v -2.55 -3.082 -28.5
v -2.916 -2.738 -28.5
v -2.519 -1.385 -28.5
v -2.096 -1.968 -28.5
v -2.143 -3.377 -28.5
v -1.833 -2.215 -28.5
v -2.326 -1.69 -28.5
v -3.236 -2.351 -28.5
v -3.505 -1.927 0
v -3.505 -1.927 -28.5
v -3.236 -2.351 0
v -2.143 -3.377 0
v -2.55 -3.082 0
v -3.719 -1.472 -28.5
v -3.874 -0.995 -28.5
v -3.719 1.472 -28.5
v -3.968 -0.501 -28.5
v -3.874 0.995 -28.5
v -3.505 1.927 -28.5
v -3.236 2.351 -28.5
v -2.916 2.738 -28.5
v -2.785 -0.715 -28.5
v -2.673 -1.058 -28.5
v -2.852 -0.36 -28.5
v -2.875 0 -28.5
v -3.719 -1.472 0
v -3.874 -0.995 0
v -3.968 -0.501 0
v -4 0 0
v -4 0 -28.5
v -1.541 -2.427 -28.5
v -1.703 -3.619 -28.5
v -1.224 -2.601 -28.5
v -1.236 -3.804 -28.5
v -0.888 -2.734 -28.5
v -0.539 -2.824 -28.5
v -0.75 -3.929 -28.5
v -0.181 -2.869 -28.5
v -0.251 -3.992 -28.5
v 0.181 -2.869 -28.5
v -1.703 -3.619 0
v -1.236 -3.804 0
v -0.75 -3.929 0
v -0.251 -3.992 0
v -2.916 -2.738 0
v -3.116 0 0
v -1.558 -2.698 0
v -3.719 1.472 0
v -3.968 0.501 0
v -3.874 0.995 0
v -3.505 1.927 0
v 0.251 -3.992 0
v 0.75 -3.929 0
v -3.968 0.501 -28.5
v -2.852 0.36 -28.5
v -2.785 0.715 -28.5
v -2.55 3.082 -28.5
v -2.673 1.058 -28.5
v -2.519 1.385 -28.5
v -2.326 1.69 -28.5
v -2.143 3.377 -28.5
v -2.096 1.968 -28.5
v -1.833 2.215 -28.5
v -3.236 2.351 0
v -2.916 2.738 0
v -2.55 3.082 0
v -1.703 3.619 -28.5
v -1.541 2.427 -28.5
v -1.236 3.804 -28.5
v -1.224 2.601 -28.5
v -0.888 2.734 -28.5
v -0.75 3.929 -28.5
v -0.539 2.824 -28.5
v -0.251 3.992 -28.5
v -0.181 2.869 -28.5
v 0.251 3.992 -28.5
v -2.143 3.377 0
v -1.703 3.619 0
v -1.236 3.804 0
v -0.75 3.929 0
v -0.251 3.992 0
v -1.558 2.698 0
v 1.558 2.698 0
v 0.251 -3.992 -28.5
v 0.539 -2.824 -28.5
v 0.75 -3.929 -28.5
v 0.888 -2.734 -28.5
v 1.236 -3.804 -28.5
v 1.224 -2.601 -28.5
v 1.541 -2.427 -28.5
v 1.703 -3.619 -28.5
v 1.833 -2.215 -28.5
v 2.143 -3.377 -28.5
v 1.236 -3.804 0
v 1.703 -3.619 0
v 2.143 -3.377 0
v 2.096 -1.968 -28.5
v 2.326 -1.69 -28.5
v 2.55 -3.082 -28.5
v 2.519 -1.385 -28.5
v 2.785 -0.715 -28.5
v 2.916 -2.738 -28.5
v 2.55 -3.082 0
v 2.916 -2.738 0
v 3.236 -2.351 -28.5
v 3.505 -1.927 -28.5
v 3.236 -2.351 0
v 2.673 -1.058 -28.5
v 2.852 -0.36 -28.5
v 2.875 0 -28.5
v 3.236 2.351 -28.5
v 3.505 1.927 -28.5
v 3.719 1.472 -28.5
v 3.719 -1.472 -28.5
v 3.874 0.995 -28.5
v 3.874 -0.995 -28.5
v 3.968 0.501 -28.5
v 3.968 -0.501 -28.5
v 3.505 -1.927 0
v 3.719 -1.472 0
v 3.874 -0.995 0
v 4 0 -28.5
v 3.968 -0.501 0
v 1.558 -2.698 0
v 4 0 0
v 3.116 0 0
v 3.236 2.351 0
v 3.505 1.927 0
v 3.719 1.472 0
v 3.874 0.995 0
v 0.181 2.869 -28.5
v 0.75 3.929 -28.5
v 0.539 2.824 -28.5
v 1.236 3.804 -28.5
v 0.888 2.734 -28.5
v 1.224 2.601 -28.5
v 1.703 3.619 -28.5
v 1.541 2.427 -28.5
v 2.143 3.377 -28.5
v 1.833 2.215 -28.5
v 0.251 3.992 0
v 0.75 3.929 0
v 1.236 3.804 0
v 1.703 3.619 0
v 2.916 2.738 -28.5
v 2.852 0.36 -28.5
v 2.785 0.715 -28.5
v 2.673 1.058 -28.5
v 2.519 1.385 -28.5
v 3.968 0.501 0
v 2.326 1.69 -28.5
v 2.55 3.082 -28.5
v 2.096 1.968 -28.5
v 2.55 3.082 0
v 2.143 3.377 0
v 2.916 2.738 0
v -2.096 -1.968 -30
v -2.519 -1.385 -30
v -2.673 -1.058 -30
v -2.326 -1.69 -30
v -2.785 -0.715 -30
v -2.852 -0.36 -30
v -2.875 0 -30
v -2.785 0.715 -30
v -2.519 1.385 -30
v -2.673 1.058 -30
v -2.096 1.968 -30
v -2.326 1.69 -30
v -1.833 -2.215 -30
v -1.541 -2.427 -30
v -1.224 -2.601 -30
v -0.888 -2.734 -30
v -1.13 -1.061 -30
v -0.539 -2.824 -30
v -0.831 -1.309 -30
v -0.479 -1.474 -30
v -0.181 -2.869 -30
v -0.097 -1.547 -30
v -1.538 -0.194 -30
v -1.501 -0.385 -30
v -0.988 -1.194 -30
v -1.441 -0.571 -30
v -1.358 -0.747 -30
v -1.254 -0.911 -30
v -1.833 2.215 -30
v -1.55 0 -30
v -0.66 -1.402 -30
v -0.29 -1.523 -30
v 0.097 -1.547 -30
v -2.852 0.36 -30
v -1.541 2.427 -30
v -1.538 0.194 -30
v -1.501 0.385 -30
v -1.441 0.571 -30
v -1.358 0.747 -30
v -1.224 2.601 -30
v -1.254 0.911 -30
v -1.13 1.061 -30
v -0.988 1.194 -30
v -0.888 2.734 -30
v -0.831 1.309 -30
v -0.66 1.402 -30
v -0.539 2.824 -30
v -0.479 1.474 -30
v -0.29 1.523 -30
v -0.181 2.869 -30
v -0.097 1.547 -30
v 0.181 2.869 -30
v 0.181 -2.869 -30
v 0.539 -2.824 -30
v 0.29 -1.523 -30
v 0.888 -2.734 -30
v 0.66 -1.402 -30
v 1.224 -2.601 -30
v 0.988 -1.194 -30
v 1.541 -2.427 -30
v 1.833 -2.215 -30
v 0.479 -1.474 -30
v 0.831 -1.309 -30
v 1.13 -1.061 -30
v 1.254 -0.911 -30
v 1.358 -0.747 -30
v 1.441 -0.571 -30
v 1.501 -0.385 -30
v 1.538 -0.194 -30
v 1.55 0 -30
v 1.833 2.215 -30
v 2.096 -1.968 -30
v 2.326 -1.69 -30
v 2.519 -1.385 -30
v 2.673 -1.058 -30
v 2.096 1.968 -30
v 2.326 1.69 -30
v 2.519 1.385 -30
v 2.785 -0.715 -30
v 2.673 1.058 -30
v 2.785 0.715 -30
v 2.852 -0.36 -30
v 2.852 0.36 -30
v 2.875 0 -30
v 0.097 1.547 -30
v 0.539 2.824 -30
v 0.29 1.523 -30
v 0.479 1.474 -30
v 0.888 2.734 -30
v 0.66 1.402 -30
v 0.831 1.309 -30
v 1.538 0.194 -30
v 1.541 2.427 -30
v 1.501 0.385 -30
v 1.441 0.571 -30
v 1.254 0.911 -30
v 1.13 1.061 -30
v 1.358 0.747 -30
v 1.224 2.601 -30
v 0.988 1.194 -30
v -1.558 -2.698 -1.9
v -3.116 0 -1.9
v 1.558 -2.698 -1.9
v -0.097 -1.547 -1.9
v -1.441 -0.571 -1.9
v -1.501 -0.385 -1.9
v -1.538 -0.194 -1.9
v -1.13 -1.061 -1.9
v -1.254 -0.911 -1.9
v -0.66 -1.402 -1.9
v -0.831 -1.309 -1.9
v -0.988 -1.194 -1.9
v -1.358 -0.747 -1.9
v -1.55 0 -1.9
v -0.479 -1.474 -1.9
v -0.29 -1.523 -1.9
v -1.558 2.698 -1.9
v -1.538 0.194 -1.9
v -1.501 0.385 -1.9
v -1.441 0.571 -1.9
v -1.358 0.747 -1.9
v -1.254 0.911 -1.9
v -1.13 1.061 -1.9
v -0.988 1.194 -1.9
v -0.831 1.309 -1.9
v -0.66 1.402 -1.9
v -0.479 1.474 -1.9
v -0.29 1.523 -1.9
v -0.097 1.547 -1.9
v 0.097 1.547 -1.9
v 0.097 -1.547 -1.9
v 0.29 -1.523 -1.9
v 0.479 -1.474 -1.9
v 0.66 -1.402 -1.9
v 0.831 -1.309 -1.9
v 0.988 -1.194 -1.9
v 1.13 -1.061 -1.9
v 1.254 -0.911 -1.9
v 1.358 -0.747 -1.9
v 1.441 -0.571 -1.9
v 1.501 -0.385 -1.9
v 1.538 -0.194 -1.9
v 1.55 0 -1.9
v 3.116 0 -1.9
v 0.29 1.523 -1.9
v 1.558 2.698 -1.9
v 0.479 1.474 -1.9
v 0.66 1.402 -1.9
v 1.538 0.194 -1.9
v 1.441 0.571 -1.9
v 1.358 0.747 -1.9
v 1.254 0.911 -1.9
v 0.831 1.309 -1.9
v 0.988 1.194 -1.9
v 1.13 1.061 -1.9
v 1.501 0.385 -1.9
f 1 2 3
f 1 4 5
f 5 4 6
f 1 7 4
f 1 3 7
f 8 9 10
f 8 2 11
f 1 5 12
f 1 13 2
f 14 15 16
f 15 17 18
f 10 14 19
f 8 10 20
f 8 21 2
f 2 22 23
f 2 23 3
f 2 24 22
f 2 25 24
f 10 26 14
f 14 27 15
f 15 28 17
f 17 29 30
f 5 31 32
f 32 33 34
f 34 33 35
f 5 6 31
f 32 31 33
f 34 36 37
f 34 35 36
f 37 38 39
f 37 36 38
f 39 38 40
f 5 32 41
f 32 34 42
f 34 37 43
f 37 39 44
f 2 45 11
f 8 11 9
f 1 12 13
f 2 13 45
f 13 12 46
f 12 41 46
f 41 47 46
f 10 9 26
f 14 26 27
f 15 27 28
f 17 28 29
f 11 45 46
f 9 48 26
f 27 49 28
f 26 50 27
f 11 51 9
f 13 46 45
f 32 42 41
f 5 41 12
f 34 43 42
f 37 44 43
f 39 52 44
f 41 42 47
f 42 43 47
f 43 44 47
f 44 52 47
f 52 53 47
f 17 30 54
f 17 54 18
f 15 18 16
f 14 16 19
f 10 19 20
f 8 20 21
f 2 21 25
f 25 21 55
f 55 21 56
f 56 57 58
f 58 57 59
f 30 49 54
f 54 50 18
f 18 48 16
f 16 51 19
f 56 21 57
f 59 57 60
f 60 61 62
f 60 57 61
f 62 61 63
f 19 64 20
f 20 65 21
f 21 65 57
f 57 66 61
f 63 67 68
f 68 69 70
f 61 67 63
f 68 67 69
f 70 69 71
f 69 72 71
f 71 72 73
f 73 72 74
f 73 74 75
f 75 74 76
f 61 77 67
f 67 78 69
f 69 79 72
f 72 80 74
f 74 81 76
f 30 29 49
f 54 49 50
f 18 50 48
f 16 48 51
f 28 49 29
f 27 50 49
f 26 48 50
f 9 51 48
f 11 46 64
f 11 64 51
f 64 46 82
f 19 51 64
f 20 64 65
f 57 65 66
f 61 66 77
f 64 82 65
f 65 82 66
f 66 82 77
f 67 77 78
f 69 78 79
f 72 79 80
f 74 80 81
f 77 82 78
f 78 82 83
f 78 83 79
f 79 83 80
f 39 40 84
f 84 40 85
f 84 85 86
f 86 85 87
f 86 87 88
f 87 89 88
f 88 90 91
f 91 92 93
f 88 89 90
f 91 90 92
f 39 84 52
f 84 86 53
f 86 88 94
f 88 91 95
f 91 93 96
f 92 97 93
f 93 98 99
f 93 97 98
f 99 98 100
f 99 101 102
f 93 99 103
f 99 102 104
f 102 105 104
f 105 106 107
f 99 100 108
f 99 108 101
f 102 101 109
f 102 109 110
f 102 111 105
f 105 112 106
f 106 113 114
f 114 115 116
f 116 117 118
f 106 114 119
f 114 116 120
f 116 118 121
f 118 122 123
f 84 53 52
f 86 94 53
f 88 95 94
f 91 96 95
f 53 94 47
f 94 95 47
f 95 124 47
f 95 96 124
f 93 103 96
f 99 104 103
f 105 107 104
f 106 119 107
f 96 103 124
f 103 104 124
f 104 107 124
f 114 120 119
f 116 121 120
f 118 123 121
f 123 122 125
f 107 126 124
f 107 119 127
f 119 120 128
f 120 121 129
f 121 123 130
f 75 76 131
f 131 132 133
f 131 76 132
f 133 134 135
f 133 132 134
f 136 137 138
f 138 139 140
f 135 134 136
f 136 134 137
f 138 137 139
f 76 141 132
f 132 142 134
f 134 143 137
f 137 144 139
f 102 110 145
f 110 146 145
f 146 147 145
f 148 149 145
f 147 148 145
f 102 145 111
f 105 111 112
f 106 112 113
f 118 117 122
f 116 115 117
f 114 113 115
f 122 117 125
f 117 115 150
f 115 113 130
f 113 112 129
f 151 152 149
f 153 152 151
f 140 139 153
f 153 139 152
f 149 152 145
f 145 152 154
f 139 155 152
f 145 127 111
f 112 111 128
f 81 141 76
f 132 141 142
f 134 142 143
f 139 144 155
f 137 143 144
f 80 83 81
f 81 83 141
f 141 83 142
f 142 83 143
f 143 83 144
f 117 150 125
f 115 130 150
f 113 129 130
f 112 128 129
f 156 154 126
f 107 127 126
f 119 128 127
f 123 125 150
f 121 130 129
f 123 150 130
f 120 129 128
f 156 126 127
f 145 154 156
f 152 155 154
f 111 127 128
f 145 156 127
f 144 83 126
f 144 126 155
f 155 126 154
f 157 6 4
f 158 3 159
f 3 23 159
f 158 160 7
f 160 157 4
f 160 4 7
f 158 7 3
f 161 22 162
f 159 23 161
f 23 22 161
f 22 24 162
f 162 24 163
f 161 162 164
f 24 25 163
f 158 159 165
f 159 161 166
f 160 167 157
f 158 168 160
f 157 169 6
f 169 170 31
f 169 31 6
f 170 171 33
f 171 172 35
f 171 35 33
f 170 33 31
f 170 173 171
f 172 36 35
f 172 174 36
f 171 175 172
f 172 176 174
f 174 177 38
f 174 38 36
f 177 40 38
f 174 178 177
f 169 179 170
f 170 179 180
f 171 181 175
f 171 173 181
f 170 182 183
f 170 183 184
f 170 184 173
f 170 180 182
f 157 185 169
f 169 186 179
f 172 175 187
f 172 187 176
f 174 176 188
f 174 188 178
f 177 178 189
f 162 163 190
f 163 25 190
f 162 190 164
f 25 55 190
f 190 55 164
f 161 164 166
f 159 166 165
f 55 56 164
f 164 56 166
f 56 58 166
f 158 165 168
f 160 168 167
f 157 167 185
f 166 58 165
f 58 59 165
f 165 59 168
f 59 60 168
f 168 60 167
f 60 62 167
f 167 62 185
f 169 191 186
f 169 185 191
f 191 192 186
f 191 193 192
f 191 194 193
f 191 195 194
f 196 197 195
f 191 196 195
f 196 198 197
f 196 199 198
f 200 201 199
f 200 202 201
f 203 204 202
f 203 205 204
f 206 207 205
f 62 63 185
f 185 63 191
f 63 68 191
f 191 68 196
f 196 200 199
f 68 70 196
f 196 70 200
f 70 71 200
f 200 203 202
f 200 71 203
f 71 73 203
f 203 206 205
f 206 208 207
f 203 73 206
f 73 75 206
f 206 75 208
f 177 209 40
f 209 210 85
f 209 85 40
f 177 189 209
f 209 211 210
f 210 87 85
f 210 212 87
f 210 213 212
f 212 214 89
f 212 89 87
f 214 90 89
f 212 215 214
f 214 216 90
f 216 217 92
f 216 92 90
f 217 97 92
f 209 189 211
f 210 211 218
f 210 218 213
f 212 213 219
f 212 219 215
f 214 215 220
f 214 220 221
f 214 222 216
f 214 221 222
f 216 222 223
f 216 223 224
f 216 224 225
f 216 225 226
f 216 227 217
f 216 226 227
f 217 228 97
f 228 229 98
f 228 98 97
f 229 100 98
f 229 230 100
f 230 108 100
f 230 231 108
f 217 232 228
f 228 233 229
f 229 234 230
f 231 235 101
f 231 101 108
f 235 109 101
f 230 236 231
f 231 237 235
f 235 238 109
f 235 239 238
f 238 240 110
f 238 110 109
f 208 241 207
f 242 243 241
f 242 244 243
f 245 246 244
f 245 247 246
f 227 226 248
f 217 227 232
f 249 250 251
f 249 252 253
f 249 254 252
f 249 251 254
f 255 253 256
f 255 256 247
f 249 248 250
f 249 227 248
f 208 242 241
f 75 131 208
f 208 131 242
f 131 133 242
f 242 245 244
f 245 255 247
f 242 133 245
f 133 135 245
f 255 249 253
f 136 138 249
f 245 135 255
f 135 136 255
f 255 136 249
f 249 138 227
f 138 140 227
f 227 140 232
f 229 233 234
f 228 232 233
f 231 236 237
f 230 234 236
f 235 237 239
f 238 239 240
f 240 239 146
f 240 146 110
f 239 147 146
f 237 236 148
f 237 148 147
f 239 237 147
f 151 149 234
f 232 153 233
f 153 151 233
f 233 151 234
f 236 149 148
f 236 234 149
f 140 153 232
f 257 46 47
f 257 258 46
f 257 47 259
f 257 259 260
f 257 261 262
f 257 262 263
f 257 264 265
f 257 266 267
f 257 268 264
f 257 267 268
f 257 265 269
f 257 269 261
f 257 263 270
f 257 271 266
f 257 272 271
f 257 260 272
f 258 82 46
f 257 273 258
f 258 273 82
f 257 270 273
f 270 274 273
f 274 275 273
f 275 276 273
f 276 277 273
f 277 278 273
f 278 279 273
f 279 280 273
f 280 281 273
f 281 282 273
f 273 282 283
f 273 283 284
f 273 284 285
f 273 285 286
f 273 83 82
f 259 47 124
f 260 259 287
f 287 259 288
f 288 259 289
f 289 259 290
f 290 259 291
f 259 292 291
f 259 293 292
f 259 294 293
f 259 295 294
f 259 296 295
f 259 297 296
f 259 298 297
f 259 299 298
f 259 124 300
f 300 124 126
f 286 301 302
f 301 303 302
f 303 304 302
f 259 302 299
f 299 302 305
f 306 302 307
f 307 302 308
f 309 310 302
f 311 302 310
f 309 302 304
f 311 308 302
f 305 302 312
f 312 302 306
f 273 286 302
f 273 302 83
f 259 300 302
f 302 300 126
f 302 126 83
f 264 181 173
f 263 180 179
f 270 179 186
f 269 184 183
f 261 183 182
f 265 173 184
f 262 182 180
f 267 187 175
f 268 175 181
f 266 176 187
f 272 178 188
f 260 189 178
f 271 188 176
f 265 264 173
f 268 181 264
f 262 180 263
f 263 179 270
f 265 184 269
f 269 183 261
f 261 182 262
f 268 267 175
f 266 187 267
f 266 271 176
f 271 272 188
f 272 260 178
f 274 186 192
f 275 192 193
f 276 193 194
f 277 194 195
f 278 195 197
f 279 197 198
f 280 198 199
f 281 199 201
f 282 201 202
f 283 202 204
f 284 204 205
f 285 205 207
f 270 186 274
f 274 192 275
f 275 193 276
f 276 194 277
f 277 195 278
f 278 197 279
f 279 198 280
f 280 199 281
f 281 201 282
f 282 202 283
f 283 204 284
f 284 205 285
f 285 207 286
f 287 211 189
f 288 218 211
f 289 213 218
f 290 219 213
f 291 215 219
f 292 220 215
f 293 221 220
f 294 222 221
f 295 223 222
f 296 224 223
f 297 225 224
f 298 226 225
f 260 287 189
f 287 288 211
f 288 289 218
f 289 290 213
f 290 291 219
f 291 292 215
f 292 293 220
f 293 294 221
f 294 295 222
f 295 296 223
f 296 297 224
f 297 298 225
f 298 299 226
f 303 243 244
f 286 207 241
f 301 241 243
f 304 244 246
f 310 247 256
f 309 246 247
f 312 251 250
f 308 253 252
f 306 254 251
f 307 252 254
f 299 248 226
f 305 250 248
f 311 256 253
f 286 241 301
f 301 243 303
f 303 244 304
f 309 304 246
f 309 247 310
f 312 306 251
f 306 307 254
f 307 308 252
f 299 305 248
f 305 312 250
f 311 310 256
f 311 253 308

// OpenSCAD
$fn = 50;

difference() {
	union() {
		translate(v = [0, 0, -28.5]) {
			cylinder(h = 28.5, r = 4.0);
		}
		#translate(v = [0, 0, -30.0]) {
			cylinder(h = 30, r = 2.875);
		}
	}
	union() {
		translate(v = [0, 0, 0]) {
			rotate(a = [0, 0, 0]) {
				difference() {
					union() {
						translate(v = [0, 0, -1.9]) {
							linear_extrude(height = 1.9) {
								polygon(points = [[3.1158, 0.0], [1.5579000000000005, 2.698361953111554], [-1.5578999999999994, 2.6983619531115544], [-3.1158, 3.815754496783323e-16], [-1.5579000000000014, -2.6983619531115535], [1.557899999999998, -2.6983619531115552]]);
							}
						}
					}
					union();
				}
			}
		}
		#translate(v = [0, 0, -100.0]) {
			cylinder(h = 200, r = 1.55);
		}
	}
}
